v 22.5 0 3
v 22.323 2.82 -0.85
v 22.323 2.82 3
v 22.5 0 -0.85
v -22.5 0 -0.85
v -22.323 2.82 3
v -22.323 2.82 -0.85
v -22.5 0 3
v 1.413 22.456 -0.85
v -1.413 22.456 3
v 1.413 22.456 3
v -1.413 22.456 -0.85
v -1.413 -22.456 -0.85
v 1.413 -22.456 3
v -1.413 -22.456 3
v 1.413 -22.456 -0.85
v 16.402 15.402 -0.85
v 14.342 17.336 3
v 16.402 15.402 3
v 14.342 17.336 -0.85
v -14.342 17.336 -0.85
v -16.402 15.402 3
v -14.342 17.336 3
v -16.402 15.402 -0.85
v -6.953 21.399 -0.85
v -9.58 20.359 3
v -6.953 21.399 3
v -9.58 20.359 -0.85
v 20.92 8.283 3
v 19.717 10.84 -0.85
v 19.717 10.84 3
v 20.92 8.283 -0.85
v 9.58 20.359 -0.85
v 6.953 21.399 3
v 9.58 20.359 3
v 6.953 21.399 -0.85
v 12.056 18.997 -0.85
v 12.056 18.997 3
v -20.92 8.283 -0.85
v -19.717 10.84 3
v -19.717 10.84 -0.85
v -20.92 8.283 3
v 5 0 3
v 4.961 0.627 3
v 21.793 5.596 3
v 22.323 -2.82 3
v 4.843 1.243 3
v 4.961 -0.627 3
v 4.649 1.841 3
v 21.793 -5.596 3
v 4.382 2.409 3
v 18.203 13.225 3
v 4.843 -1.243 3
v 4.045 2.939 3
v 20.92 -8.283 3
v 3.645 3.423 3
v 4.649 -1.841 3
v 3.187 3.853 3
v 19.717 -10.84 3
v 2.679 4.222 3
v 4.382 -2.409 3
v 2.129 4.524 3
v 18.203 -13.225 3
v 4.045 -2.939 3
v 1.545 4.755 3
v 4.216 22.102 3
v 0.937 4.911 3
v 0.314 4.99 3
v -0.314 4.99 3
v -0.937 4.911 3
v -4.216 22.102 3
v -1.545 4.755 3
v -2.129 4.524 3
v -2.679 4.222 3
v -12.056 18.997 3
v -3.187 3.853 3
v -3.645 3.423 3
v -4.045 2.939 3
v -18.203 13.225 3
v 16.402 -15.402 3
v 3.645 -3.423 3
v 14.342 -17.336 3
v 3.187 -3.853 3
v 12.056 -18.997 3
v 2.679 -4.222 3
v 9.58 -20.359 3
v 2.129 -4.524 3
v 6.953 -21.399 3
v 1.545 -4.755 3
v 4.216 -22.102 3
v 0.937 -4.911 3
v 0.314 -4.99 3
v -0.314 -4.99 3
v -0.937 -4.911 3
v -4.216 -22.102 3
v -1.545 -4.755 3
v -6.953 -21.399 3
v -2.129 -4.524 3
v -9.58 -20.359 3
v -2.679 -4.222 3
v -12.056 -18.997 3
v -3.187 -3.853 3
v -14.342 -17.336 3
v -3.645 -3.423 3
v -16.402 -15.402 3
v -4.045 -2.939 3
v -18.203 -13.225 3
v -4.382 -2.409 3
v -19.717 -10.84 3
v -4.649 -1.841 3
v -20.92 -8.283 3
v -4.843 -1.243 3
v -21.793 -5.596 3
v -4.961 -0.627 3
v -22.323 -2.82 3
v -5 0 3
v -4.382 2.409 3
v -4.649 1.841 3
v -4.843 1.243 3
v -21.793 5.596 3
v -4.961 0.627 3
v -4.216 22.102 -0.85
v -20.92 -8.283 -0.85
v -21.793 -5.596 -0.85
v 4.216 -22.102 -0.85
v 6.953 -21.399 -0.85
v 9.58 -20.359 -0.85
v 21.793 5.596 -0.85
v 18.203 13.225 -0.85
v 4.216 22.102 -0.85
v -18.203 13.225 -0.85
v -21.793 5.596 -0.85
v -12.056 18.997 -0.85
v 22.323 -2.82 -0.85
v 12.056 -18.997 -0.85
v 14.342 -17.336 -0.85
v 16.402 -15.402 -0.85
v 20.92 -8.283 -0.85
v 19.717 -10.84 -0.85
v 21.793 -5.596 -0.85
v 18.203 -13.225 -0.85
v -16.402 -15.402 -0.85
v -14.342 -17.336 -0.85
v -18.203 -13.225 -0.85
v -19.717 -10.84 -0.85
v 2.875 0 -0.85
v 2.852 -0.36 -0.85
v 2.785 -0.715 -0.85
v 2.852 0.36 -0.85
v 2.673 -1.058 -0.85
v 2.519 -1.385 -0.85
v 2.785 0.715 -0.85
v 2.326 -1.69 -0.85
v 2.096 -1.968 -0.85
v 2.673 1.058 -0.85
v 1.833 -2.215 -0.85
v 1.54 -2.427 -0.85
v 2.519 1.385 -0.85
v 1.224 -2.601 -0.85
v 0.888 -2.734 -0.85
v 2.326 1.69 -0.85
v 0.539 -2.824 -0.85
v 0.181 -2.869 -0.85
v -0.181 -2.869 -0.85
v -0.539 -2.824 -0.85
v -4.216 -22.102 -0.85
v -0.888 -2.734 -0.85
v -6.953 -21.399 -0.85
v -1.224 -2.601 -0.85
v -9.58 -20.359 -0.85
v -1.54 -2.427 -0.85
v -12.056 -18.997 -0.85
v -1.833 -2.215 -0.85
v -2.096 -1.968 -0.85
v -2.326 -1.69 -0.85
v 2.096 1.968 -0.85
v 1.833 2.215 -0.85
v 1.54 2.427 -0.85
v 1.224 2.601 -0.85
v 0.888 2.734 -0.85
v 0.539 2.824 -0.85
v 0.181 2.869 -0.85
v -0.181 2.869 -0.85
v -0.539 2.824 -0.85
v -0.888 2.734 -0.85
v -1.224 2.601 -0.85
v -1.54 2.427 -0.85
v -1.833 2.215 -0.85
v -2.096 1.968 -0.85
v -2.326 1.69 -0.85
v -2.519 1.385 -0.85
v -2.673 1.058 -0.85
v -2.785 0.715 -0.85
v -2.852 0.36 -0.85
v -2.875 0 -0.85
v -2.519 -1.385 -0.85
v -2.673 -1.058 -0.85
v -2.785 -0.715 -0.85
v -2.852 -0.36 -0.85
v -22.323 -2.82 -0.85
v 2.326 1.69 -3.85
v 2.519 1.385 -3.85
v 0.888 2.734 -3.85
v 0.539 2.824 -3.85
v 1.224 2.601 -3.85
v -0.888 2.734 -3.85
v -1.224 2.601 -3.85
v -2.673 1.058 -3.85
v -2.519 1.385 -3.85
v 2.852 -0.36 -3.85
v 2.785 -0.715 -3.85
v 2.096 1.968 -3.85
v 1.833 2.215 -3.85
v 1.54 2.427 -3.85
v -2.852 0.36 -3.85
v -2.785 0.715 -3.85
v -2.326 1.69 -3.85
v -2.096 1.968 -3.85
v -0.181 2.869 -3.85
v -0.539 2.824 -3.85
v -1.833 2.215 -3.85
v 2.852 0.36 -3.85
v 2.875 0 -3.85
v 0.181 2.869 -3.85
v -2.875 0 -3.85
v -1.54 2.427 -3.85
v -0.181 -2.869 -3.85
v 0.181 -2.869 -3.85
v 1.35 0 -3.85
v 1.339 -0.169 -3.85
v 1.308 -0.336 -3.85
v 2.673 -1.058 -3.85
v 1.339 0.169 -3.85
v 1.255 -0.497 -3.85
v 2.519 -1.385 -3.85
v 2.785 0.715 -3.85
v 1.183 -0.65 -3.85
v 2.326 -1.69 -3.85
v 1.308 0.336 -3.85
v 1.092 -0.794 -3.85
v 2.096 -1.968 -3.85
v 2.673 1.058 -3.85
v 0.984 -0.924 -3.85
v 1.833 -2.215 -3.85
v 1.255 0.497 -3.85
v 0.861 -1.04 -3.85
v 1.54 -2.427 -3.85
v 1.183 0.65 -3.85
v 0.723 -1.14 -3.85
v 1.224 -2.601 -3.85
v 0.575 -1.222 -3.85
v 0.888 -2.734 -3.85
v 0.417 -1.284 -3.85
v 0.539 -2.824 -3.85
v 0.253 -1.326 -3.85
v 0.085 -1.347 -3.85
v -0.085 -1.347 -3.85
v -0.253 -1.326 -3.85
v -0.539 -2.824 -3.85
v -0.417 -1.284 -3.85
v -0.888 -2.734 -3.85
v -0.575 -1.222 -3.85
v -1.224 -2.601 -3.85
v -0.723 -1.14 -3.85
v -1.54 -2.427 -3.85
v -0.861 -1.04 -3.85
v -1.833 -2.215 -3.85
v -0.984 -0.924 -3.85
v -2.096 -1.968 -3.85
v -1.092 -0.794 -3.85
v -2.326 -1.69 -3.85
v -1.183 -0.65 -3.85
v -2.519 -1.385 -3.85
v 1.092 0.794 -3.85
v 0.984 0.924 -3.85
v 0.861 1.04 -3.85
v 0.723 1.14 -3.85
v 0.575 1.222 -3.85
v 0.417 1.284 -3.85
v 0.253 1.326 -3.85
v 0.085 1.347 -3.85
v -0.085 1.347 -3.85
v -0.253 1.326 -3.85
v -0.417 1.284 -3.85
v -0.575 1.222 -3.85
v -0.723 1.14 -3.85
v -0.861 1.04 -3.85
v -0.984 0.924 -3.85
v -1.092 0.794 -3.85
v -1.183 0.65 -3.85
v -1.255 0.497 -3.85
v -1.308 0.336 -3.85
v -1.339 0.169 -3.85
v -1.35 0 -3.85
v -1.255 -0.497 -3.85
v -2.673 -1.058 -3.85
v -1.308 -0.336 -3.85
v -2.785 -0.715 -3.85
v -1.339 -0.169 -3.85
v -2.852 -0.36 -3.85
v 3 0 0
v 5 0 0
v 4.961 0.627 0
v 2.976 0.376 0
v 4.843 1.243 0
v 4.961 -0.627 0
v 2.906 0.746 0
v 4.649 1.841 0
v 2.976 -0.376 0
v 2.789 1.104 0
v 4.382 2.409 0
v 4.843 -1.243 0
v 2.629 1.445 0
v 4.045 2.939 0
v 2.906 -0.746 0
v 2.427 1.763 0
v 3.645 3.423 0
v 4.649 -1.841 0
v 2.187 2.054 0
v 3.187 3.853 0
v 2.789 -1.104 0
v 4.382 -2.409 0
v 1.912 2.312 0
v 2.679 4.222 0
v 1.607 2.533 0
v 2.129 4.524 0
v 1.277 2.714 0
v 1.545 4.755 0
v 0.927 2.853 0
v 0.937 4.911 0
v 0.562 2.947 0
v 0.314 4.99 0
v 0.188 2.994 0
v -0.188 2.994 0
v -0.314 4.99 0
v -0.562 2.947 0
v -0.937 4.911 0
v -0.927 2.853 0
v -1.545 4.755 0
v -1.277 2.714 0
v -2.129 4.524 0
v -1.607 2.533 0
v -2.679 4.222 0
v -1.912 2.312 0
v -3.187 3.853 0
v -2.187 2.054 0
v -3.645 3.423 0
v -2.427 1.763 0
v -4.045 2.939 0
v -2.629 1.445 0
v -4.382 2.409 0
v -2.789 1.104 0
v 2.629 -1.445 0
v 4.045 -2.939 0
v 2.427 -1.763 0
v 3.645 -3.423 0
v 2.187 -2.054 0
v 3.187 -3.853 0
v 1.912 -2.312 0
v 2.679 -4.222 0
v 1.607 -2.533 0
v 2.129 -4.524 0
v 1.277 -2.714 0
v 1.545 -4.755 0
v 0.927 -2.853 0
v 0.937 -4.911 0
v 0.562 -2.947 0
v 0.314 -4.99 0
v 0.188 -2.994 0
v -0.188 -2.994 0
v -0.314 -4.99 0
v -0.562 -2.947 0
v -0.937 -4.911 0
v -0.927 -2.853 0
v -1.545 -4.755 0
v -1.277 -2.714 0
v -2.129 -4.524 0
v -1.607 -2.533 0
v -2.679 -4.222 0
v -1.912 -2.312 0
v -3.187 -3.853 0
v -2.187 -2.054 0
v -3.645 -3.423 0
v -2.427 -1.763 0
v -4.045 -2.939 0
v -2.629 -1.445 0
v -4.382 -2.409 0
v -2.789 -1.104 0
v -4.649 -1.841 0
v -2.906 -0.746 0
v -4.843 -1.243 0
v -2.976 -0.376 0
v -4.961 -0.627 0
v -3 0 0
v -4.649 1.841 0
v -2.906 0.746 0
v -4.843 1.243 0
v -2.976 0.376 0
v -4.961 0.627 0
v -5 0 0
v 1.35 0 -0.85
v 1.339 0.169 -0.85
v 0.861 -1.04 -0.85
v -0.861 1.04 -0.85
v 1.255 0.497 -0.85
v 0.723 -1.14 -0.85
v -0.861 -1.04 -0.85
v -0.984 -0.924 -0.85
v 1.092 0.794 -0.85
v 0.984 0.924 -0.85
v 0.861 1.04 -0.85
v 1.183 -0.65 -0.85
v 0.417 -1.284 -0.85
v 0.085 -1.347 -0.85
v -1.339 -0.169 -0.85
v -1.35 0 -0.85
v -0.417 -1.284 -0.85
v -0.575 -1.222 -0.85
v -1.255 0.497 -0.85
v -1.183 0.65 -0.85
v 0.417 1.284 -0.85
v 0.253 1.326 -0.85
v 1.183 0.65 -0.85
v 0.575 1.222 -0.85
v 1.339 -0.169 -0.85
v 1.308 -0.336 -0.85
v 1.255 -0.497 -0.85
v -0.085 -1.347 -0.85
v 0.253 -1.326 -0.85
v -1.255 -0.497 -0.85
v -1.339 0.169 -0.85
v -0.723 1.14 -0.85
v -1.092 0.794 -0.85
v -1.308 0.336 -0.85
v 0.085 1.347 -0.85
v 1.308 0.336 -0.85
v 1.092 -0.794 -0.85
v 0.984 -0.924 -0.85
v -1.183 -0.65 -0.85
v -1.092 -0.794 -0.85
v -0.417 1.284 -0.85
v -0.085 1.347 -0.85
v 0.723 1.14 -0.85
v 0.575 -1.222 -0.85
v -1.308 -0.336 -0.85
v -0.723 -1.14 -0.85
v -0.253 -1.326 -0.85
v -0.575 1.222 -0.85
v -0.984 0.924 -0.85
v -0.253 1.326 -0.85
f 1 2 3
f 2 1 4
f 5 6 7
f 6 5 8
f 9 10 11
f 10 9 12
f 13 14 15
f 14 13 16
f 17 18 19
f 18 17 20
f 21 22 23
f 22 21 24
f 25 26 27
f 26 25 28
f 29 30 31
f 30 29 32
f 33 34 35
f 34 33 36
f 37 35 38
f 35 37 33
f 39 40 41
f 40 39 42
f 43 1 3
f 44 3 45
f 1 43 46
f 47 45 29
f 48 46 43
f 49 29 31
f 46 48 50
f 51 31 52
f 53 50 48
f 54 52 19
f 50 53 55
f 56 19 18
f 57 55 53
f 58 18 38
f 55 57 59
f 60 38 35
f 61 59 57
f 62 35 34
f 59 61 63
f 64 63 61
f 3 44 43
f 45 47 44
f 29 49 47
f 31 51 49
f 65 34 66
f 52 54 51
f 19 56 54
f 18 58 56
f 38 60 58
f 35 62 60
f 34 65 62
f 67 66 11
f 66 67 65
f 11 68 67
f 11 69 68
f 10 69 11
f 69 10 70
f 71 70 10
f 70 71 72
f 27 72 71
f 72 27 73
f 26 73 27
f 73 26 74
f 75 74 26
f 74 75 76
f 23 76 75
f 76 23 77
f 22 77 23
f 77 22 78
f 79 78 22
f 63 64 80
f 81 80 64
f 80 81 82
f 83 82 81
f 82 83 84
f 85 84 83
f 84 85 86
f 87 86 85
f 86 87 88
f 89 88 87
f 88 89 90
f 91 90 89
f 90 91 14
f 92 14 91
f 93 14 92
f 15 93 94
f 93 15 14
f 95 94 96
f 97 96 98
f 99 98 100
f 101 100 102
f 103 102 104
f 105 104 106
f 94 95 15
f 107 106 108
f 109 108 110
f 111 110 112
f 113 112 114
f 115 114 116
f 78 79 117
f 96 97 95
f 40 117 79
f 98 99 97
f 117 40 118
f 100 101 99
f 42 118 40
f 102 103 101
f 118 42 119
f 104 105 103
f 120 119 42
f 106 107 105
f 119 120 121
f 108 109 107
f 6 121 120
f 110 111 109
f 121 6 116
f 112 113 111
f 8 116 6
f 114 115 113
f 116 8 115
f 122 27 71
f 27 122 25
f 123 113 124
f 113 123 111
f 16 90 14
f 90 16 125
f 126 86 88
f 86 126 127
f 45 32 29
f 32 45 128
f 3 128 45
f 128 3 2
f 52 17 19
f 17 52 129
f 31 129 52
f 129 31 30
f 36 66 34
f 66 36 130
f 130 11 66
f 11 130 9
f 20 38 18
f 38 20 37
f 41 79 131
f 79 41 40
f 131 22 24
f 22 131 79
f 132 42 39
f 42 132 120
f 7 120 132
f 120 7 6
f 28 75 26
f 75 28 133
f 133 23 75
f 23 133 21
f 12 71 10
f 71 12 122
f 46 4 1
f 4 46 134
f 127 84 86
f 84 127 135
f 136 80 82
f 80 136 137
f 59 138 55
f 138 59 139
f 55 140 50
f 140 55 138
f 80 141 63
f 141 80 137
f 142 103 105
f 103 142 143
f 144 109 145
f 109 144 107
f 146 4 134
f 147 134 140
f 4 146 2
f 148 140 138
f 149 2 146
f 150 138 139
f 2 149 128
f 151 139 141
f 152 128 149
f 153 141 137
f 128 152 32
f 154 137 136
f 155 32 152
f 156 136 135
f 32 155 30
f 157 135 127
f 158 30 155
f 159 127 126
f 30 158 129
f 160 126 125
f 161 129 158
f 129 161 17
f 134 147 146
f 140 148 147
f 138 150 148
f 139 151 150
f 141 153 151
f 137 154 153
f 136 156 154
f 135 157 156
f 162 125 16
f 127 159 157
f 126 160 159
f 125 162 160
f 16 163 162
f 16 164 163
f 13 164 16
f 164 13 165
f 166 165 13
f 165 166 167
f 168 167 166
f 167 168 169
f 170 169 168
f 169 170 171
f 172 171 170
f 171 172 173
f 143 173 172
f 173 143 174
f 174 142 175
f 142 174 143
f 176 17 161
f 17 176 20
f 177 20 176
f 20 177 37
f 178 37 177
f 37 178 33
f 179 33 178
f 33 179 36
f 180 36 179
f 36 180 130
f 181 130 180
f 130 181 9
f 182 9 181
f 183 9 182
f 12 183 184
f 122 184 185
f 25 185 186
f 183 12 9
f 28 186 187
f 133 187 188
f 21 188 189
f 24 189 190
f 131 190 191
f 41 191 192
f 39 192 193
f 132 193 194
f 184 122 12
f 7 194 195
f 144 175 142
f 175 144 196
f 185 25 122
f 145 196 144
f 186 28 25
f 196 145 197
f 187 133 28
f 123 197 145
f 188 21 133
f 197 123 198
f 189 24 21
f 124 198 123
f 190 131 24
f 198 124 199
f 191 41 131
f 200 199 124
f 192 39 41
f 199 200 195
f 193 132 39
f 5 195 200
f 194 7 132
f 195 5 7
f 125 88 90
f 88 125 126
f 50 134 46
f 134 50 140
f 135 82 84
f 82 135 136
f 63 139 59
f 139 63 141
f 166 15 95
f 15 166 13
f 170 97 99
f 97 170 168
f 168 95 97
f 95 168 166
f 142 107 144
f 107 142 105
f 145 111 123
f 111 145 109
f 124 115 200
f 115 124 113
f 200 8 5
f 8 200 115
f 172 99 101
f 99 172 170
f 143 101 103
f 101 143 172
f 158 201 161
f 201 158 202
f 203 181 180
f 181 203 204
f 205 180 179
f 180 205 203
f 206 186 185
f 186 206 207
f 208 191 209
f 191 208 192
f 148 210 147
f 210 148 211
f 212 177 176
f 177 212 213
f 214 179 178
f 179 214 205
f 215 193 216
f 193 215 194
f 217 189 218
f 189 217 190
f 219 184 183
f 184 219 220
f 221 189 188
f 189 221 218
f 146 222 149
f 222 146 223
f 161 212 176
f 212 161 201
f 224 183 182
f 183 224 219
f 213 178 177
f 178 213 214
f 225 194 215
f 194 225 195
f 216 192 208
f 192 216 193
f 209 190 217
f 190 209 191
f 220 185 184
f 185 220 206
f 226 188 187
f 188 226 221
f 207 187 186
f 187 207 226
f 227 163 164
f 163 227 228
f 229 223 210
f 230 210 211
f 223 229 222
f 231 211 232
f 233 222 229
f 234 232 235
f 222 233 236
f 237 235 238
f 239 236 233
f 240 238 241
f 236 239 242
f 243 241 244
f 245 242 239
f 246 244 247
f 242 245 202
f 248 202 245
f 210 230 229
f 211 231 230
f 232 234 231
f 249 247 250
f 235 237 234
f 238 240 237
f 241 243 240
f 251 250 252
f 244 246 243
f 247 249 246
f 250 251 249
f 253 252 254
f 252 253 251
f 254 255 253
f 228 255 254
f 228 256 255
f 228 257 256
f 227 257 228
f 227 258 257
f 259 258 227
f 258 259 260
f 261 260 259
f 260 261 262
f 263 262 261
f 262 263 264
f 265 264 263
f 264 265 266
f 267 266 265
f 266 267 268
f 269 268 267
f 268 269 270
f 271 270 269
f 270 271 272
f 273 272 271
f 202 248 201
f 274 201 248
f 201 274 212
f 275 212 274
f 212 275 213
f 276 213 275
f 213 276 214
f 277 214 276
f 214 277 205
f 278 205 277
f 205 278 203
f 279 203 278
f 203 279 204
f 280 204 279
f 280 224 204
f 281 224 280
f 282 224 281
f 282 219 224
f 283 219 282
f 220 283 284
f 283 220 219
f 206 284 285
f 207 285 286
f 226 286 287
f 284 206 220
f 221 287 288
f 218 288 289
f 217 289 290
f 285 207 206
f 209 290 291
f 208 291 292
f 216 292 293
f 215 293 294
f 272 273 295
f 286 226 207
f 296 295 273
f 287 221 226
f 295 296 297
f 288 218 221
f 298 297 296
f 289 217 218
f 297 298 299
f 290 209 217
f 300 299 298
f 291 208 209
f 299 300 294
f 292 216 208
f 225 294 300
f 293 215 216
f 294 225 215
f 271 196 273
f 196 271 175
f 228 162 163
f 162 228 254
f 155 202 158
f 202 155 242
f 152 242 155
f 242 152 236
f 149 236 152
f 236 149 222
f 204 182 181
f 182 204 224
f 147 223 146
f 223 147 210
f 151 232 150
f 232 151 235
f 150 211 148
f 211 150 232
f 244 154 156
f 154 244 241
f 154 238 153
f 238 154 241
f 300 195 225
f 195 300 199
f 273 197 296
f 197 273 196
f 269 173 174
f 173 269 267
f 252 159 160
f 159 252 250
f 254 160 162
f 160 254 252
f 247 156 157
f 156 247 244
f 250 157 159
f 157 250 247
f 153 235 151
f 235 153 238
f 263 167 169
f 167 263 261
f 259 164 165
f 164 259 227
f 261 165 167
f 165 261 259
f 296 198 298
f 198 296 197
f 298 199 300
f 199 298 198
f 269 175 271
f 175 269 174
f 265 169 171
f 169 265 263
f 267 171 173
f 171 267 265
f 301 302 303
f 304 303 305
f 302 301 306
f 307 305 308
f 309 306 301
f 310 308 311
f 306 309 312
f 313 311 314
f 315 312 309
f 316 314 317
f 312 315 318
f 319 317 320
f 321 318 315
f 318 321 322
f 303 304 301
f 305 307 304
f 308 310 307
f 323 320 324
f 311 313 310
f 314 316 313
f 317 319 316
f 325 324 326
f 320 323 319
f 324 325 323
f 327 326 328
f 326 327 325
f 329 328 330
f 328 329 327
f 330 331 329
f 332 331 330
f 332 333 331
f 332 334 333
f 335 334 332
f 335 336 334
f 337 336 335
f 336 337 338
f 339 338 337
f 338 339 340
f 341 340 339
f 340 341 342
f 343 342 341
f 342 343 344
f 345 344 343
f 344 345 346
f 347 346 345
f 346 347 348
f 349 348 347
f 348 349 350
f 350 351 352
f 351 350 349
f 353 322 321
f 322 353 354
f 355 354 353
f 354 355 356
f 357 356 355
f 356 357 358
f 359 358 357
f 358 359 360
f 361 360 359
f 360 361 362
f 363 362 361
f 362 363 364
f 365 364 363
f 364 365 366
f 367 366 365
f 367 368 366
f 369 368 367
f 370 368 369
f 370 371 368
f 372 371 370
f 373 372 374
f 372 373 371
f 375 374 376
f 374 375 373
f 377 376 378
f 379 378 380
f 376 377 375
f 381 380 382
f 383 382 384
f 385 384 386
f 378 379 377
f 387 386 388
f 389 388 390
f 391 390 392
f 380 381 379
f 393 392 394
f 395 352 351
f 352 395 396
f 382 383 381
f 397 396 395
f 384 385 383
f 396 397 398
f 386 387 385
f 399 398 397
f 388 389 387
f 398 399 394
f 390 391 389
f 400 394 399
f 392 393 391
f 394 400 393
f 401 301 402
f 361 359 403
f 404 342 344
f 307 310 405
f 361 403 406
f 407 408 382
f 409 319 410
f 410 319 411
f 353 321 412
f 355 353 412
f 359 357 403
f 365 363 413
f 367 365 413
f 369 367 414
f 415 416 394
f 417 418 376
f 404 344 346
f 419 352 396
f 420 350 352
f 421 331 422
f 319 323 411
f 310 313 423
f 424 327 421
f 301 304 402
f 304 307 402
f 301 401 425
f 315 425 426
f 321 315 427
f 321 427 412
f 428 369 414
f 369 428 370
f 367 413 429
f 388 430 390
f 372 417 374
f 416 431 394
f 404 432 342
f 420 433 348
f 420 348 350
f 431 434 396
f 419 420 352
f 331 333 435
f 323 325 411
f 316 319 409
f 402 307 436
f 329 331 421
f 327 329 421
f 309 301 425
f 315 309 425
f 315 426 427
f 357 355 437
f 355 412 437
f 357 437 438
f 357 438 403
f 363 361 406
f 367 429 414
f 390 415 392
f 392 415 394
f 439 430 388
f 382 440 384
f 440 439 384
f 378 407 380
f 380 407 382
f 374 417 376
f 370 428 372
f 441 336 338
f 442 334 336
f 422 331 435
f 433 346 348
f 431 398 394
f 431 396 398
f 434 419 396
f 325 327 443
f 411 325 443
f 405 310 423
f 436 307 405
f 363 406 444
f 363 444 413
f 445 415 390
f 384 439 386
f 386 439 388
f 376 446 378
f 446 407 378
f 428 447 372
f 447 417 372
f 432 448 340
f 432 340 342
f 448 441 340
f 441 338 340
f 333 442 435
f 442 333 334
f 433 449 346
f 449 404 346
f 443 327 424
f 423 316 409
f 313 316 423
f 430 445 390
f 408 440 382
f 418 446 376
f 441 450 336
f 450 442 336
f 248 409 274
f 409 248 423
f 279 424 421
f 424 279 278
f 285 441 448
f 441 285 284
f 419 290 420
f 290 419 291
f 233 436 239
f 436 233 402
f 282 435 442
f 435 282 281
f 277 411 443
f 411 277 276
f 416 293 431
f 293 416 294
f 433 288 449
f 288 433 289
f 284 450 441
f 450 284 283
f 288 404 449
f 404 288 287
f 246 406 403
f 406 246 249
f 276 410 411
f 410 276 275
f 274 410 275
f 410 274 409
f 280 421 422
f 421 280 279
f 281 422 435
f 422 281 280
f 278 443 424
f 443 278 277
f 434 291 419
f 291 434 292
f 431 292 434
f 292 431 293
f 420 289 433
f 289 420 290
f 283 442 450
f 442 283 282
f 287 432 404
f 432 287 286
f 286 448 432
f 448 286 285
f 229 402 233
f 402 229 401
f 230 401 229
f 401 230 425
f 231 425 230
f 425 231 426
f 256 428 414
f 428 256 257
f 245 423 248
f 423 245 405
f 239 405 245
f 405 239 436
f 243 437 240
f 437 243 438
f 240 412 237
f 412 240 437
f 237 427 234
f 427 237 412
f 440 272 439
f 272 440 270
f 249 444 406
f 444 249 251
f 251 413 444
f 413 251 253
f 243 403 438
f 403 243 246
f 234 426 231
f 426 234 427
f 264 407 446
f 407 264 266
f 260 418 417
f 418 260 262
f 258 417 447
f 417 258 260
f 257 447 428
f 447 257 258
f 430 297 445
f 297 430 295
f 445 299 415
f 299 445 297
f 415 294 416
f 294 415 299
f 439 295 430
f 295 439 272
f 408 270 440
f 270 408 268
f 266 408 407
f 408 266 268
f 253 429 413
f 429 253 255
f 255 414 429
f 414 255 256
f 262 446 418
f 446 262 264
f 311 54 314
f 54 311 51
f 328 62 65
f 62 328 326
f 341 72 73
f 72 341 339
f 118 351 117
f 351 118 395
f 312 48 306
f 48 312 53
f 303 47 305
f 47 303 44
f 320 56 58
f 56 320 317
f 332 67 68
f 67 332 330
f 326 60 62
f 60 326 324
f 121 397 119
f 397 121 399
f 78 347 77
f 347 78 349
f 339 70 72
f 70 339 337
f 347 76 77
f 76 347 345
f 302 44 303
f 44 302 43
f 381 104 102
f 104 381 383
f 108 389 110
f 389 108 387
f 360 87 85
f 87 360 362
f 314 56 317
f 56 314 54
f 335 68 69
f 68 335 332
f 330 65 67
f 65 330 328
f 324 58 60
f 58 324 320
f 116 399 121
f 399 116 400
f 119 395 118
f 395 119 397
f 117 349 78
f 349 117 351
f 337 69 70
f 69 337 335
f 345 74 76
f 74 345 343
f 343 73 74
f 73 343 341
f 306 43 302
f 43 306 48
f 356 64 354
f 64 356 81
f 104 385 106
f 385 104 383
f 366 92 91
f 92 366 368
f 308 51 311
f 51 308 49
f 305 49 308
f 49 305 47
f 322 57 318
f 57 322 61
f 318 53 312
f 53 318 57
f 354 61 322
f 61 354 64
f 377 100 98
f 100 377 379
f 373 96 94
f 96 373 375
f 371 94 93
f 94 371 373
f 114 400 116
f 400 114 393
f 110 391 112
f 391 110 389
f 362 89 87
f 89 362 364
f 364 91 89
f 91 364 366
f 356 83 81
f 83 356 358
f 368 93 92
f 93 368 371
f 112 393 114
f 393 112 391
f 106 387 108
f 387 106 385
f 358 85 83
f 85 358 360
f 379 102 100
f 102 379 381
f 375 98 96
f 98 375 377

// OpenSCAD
$fn = 50;


difference() {
	union() {
		translate(v = [0, 0, -0.8500000000]) {
			cylinder(h = 3.8500000000, r = 22.5000000000);
		}
		#translate(v = [0, 0, -3.8500000000]) {
			cylinder(h = 3.8500000000, r = 2.8750000000);
		}
	}
	union() {
		translate(v = [0, 0, 0]) {
			rotate(a = [0, 0, 0]) {
				difference() {
					union() {
						translate(v = [0, 0, -3.8500000000]) {
							cylinder(h = 3.8500000000, r = 1.0000000000);
						}
						translate(v = [0, 0, -0.8500000000]) {
							cylinder(h = 0.8500000000, r1 = 1.3500000000, r2 = 3.0000000000);
						}
						translate(v = [0, 0, -3.8500000000]) {
							cylinder(h = 3.8500000000, r = 1.3500000000);
						}
						translate(v = [0, 0, -3.8500000000]) {
							cylinder(h = 3.8500000000, r = 1.0000000000);
						}
					}
					union();
				}
			}
		}
		#cylinder(h = 3, r = 5.0000000000);
	}
}
